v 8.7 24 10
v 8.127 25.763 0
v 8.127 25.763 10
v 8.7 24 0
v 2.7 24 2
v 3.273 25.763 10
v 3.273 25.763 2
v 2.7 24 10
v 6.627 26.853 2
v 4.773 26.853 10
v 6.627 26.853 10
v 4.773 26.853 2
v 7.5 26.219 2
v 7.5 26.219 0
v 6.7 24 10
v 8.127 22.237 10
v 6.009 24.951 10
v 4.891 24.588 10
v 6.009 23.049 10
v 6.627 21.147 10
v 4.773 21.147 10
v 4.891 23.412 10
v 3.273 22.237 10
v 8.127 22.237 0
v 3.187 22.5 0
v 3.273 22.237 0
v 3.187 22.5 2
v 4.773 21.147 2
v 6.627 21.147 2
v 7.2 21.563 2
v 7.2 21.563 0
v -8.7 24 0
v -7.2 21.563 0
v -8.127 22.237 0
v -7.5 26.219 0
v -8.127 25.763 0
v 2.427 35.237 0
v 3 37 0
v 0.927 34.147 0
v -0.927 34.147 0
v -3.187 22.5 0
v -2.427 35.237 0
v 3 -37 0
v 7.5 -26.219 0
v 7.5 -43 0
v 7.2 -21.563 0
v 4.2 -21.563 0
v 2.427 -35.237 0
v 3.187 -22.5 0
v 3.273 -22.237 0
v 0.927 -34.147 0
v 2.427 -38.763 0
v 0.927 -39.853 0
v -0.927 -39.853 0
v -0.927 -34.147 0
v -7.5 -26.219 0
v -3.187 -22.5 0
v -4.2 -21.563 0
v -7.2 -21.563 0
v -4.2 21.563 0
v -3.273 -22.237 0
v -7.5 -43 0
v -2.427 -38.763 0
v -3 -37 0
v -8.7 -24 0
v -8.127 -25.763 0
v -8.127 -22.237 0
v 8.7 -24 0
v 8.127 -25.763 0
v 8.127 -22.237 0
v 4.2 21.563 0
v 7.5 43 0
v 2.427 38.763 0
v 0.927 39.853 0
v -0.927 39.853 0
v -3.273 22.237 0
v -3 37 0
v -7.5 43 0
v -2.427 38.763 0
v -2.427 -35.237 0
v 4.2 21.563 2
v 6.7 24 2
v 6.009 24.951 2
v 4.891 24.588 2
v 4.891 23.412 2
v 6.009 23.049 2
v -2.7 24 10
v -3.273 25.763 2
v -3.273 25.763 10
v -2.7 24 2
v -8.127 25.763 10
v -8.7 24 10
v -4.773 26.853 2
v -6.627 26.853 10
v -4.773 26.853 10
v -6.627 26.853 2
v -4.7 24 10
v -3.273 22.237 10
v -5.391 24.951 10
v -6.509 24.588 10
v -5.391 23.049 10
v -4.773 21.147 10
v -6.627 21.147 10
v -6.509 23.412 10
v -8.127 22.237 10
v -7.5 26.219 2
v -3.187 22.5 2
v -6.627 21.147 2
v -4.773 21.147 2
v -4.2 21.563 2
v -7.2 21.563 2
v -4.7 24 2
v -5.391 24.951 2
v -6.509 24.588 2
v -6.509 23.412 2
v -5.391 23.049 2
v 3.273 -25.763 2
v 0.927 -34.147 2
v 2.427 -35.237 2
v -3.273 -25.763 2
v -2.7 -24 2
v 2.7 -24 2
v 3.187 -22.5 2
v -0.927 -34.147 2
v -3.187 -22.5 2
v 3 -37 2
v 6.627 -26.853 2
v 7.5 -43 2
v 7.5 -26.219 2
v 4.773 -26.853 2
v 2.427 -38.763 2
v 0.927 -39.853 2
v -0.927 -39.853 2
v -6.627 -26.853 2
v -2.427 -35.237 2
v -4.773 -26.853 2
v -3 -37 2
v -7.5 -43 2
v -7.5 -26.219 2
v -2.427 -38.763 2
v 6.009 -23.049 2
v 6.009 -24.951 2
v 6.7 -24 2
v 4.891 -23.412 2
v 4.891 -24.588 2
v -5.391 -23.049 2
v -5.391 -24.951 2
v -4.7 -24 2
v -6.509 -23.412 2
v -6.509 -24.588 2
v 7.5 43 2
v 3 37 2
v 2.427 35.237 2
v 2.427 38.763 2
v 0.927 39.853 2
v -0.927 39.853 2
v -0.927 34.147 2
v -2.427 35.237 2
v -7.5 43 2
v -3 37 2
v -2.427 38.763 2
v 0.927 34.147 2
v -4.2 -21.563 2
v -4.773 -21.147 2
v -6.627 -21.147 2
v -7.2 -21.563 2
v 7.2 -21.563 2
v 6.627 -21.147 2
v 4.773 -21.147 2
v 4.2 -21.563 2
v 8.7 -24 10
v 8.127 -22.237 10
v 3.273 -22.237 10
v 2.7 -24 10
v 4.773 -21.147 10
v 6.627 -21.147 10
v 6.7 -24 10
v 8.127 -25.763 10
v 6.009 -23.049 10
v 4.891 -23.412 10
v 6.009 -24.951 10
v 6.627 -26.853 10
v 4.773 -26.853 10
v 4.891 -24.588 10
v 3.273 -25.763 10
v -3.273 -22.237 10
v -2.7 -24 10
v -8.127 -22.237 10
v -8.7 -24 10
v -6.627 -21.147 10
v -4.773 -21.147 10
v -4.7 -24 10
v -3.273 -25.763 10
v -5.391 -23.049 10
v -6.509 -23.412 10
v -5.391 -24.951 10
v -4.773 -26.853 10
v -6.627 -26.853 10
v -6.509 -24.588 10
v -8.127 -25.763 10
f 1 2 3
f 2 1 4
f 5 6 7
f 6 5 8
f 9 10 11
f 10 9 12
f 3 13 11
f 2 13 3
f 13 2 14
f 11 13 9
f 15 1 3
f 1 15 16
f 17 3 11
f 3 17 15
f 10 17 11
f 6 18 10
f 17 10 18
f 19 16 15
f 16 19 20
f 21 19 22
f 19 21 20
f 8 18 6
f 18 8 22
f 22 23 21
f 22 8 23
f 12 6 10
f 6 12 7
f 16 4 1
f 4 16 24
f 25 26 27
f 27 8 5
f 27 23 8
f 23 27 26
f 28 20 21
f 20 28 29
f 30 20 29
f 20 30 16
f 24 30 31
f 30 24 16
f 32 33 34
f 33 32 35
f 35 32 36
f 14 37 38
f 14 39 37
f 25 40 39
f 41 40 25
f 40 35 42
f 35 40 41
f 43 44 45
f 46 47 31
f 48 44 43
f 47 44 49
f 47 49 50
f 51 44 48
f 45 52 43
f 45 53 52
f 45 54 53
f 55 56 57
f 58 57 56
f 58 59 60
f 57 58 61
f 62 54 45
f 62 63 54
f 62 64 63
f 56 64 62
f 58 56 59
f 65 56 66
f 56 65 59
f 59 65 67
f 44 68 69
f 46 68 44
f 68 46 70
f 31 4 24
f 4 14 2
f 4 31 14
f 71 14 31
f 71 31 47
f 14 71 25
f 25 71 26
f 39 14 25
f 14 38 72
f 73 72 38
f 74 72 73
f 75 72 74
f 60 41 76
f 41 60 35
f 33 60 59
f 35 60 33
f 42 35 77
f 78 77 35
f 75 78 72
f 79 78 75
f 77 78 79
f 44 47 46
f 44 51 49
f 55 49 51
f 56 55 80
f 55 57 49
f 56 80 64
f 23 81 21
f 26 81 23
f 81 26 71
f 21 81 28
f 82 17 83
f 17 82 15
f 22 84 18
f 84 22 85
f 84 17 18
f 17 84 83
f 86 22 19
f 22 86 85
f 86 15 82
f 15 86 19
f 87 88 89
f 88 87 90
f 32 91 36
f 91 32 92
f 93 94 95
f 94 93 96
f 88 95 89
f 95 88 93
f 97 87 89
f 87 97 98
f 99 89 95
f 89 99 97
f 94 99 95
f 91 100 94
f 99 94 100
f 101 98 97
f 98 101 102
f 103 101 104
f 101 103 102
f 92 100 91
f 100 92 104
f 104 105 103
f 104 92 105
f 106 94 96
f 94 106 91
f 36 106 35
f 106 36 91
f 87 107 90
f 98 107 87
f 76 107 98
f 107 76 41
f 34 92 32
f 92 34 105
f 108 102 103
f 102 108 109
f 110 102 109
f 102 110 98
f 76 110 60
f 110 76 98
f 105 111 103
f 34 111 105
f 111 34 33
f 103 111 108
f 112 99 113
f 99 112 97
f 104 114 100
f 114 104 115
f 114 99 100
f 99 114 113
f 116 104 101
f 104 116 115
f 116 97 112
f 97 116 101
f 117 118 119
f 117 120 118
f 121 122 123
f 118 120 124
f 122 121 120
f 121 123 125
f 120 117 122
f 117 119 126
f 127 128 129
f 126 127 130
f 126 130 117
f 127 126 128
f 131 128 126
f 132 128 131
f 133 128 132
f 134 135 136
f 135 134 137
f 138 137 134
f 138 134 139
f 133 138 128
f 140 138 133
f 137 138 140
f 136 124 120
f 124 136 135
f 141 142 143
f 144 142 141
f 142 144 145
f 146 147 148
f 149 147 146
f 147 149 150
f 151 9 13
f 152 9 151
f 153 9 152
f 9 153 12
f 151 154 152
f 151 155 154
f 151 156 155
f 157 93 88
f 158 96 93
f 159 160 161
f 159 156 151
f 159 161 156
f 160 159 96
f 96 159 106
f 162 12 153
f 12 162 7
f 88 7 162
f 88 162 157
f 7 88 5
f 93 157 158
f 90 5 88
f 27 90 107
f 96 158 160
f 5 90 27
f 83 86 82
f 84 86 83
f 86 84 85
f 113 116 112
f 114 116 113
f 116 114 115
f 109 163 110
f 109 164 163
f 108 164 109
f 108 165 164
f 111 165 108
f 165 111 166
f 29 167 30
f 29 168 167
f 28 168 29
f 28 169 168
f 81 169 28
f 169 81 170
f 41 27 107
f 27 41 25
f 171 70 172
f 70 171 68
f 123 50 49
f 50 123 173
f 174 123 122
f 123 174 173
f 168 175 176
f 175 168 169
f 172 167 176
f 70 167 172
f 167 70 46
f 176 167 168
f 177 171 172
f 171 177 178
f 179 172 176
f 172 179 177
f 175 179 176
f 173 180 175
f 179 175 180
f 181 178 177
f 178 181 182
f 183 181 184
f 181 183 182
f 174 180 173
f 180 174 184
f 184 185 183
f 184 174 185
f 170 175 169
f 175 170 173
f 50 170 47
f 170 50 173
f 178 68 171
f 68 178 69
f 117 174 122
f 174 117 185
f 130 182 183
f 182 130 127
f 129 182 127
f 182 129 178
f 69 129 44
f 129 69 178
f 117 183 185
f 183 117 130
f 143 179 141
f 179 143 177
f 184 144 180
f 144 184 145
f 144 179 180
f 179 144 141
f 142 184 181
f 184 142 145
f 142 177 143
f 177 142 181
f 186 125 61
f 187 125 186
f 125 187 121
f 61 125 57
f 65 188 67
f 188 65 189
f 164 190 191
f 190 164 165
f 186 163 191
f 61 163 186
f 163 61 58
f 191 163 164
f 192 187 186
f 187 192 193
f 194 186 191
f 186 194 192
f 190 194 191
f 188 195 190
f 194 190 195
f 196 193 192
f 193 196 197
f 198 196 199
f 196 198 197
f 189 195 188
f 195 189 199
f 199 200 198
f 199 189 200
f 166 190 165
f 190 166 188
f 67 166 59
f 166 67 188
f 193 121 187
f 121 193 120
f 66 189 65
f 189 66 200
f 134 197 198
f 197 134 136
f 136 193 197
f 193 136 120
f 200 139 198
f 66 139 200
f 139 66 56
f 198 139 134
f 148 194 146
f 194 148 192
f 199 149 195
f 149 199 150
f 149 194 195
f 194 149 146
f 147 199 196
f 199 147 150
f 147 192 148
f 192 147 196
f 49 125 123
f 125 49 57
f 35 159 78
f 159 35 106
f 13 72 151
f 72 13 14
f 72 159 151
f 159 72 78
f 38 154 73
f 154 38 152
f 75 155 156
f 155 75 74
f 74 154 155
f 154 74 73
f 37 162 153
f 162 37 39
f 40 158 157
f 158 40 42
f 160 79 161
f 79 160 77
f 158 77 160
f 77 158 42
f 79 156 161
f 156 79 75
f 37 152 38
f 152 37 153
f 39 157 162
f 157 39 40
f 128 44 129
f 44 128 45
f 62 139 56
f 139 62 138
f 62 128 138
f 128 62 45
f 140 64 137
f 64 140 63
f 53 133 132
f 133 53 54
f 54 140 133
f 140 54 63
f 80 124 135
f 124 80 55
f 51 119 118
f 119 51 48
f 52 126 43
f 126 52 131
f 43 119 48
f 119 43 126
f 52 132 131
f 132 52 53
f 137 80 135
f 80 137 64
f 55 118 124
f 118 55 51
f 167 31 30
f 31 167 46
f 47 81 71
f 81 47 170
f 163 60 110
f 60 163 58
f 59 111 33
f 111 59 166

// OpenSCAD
union() {
	translate(v = [0, 24.0000000000, 0]) {
		union() {
			translate(v = [0, 0, 1.0000000000]) {
				cube(center = true, size = [12.4000000000, 3.0000000000, 2]);
			}
			translate(v = [5.7000000000, 0, 0]) {
				difference() {
					cylinder(d = 6, h = 10);
					translate(v = [0, 0, -10]) {
						cylinder(d = 2, h = 20);
					}
				}
			}
			translate(v = [-5.7000000000, 0, 0]) {
				difference() {
					cylinder(d = 6, h = 10);
					translate(v = [0, 0, -10]) {
						cylinder(d = 2, h = 20);
					}
				}
			}
		}
	}
	translate(v = [0, -24.0000000000, 0]) {
		union() {
			translate(v = [0, 0, 1.0000000000]) {
				cube(center = true, size = [12.4000000000, 3.0000000000, 2]);
			}
			translate(v = [5.7000000000, 0, 0]) {
				difference() {
					cylinder(d = 6, h = 10);
					translate(v = [0, 0, -10]) {
						cylinder(d = 2, h = 20);
					}
				}
			}
			translate(v = [-5.7000000000, 0, 0]) {
				difference() {
					cylinder(d = 6, h = 10);
					translate(v = [0, 0, -10]) {
						cylinder(d = 2, h = 20);
					}
				}
			}
		}
	}
	translate(v = [5.7000000000, 0, 0]) {
		rotate(a = [0, 0, 90]) {
			translate(v = [0, 0, 1.0000000000]) {
				cube(center = true, size = [49.0000000000, 3.0000000000, 2]);
			}
		}
	}
	translate(v = [-5.7000000000, 0, 0]) {
		rotate(a = [0, 0, 90]) {
			translate(v = [0, 0, 1.0000000000]) {
				cube(center = true, size = [49.0000000000, 3.0000000000, 2]);
			}
		}
	}
	translate(v = [0, 33.0000000000, 0]) {
		difference() {
			translate(v = [0, 0, 1.0000000000]) {
				cube(center = true, size = [15, 20, 2]);
			}
			translate(v = [0, 4.0000000000, 0]) {
				cylinder(d = 6, h = 20);
			}
		}
	}
	translate(v = [0, -33.0000000000, 0]) {
		rotate(a = [0, 0, 180]) {
			difference() {
				translate(v = [0, 0, 1.0000000000]) {
					cube(center = true, size = [15, 20, 2]);
				}
				translate(v = [0, 4.0000000000, 0]) {
					cylinder(d = 6, h = 20);
				}
			}
		}
	}
}
